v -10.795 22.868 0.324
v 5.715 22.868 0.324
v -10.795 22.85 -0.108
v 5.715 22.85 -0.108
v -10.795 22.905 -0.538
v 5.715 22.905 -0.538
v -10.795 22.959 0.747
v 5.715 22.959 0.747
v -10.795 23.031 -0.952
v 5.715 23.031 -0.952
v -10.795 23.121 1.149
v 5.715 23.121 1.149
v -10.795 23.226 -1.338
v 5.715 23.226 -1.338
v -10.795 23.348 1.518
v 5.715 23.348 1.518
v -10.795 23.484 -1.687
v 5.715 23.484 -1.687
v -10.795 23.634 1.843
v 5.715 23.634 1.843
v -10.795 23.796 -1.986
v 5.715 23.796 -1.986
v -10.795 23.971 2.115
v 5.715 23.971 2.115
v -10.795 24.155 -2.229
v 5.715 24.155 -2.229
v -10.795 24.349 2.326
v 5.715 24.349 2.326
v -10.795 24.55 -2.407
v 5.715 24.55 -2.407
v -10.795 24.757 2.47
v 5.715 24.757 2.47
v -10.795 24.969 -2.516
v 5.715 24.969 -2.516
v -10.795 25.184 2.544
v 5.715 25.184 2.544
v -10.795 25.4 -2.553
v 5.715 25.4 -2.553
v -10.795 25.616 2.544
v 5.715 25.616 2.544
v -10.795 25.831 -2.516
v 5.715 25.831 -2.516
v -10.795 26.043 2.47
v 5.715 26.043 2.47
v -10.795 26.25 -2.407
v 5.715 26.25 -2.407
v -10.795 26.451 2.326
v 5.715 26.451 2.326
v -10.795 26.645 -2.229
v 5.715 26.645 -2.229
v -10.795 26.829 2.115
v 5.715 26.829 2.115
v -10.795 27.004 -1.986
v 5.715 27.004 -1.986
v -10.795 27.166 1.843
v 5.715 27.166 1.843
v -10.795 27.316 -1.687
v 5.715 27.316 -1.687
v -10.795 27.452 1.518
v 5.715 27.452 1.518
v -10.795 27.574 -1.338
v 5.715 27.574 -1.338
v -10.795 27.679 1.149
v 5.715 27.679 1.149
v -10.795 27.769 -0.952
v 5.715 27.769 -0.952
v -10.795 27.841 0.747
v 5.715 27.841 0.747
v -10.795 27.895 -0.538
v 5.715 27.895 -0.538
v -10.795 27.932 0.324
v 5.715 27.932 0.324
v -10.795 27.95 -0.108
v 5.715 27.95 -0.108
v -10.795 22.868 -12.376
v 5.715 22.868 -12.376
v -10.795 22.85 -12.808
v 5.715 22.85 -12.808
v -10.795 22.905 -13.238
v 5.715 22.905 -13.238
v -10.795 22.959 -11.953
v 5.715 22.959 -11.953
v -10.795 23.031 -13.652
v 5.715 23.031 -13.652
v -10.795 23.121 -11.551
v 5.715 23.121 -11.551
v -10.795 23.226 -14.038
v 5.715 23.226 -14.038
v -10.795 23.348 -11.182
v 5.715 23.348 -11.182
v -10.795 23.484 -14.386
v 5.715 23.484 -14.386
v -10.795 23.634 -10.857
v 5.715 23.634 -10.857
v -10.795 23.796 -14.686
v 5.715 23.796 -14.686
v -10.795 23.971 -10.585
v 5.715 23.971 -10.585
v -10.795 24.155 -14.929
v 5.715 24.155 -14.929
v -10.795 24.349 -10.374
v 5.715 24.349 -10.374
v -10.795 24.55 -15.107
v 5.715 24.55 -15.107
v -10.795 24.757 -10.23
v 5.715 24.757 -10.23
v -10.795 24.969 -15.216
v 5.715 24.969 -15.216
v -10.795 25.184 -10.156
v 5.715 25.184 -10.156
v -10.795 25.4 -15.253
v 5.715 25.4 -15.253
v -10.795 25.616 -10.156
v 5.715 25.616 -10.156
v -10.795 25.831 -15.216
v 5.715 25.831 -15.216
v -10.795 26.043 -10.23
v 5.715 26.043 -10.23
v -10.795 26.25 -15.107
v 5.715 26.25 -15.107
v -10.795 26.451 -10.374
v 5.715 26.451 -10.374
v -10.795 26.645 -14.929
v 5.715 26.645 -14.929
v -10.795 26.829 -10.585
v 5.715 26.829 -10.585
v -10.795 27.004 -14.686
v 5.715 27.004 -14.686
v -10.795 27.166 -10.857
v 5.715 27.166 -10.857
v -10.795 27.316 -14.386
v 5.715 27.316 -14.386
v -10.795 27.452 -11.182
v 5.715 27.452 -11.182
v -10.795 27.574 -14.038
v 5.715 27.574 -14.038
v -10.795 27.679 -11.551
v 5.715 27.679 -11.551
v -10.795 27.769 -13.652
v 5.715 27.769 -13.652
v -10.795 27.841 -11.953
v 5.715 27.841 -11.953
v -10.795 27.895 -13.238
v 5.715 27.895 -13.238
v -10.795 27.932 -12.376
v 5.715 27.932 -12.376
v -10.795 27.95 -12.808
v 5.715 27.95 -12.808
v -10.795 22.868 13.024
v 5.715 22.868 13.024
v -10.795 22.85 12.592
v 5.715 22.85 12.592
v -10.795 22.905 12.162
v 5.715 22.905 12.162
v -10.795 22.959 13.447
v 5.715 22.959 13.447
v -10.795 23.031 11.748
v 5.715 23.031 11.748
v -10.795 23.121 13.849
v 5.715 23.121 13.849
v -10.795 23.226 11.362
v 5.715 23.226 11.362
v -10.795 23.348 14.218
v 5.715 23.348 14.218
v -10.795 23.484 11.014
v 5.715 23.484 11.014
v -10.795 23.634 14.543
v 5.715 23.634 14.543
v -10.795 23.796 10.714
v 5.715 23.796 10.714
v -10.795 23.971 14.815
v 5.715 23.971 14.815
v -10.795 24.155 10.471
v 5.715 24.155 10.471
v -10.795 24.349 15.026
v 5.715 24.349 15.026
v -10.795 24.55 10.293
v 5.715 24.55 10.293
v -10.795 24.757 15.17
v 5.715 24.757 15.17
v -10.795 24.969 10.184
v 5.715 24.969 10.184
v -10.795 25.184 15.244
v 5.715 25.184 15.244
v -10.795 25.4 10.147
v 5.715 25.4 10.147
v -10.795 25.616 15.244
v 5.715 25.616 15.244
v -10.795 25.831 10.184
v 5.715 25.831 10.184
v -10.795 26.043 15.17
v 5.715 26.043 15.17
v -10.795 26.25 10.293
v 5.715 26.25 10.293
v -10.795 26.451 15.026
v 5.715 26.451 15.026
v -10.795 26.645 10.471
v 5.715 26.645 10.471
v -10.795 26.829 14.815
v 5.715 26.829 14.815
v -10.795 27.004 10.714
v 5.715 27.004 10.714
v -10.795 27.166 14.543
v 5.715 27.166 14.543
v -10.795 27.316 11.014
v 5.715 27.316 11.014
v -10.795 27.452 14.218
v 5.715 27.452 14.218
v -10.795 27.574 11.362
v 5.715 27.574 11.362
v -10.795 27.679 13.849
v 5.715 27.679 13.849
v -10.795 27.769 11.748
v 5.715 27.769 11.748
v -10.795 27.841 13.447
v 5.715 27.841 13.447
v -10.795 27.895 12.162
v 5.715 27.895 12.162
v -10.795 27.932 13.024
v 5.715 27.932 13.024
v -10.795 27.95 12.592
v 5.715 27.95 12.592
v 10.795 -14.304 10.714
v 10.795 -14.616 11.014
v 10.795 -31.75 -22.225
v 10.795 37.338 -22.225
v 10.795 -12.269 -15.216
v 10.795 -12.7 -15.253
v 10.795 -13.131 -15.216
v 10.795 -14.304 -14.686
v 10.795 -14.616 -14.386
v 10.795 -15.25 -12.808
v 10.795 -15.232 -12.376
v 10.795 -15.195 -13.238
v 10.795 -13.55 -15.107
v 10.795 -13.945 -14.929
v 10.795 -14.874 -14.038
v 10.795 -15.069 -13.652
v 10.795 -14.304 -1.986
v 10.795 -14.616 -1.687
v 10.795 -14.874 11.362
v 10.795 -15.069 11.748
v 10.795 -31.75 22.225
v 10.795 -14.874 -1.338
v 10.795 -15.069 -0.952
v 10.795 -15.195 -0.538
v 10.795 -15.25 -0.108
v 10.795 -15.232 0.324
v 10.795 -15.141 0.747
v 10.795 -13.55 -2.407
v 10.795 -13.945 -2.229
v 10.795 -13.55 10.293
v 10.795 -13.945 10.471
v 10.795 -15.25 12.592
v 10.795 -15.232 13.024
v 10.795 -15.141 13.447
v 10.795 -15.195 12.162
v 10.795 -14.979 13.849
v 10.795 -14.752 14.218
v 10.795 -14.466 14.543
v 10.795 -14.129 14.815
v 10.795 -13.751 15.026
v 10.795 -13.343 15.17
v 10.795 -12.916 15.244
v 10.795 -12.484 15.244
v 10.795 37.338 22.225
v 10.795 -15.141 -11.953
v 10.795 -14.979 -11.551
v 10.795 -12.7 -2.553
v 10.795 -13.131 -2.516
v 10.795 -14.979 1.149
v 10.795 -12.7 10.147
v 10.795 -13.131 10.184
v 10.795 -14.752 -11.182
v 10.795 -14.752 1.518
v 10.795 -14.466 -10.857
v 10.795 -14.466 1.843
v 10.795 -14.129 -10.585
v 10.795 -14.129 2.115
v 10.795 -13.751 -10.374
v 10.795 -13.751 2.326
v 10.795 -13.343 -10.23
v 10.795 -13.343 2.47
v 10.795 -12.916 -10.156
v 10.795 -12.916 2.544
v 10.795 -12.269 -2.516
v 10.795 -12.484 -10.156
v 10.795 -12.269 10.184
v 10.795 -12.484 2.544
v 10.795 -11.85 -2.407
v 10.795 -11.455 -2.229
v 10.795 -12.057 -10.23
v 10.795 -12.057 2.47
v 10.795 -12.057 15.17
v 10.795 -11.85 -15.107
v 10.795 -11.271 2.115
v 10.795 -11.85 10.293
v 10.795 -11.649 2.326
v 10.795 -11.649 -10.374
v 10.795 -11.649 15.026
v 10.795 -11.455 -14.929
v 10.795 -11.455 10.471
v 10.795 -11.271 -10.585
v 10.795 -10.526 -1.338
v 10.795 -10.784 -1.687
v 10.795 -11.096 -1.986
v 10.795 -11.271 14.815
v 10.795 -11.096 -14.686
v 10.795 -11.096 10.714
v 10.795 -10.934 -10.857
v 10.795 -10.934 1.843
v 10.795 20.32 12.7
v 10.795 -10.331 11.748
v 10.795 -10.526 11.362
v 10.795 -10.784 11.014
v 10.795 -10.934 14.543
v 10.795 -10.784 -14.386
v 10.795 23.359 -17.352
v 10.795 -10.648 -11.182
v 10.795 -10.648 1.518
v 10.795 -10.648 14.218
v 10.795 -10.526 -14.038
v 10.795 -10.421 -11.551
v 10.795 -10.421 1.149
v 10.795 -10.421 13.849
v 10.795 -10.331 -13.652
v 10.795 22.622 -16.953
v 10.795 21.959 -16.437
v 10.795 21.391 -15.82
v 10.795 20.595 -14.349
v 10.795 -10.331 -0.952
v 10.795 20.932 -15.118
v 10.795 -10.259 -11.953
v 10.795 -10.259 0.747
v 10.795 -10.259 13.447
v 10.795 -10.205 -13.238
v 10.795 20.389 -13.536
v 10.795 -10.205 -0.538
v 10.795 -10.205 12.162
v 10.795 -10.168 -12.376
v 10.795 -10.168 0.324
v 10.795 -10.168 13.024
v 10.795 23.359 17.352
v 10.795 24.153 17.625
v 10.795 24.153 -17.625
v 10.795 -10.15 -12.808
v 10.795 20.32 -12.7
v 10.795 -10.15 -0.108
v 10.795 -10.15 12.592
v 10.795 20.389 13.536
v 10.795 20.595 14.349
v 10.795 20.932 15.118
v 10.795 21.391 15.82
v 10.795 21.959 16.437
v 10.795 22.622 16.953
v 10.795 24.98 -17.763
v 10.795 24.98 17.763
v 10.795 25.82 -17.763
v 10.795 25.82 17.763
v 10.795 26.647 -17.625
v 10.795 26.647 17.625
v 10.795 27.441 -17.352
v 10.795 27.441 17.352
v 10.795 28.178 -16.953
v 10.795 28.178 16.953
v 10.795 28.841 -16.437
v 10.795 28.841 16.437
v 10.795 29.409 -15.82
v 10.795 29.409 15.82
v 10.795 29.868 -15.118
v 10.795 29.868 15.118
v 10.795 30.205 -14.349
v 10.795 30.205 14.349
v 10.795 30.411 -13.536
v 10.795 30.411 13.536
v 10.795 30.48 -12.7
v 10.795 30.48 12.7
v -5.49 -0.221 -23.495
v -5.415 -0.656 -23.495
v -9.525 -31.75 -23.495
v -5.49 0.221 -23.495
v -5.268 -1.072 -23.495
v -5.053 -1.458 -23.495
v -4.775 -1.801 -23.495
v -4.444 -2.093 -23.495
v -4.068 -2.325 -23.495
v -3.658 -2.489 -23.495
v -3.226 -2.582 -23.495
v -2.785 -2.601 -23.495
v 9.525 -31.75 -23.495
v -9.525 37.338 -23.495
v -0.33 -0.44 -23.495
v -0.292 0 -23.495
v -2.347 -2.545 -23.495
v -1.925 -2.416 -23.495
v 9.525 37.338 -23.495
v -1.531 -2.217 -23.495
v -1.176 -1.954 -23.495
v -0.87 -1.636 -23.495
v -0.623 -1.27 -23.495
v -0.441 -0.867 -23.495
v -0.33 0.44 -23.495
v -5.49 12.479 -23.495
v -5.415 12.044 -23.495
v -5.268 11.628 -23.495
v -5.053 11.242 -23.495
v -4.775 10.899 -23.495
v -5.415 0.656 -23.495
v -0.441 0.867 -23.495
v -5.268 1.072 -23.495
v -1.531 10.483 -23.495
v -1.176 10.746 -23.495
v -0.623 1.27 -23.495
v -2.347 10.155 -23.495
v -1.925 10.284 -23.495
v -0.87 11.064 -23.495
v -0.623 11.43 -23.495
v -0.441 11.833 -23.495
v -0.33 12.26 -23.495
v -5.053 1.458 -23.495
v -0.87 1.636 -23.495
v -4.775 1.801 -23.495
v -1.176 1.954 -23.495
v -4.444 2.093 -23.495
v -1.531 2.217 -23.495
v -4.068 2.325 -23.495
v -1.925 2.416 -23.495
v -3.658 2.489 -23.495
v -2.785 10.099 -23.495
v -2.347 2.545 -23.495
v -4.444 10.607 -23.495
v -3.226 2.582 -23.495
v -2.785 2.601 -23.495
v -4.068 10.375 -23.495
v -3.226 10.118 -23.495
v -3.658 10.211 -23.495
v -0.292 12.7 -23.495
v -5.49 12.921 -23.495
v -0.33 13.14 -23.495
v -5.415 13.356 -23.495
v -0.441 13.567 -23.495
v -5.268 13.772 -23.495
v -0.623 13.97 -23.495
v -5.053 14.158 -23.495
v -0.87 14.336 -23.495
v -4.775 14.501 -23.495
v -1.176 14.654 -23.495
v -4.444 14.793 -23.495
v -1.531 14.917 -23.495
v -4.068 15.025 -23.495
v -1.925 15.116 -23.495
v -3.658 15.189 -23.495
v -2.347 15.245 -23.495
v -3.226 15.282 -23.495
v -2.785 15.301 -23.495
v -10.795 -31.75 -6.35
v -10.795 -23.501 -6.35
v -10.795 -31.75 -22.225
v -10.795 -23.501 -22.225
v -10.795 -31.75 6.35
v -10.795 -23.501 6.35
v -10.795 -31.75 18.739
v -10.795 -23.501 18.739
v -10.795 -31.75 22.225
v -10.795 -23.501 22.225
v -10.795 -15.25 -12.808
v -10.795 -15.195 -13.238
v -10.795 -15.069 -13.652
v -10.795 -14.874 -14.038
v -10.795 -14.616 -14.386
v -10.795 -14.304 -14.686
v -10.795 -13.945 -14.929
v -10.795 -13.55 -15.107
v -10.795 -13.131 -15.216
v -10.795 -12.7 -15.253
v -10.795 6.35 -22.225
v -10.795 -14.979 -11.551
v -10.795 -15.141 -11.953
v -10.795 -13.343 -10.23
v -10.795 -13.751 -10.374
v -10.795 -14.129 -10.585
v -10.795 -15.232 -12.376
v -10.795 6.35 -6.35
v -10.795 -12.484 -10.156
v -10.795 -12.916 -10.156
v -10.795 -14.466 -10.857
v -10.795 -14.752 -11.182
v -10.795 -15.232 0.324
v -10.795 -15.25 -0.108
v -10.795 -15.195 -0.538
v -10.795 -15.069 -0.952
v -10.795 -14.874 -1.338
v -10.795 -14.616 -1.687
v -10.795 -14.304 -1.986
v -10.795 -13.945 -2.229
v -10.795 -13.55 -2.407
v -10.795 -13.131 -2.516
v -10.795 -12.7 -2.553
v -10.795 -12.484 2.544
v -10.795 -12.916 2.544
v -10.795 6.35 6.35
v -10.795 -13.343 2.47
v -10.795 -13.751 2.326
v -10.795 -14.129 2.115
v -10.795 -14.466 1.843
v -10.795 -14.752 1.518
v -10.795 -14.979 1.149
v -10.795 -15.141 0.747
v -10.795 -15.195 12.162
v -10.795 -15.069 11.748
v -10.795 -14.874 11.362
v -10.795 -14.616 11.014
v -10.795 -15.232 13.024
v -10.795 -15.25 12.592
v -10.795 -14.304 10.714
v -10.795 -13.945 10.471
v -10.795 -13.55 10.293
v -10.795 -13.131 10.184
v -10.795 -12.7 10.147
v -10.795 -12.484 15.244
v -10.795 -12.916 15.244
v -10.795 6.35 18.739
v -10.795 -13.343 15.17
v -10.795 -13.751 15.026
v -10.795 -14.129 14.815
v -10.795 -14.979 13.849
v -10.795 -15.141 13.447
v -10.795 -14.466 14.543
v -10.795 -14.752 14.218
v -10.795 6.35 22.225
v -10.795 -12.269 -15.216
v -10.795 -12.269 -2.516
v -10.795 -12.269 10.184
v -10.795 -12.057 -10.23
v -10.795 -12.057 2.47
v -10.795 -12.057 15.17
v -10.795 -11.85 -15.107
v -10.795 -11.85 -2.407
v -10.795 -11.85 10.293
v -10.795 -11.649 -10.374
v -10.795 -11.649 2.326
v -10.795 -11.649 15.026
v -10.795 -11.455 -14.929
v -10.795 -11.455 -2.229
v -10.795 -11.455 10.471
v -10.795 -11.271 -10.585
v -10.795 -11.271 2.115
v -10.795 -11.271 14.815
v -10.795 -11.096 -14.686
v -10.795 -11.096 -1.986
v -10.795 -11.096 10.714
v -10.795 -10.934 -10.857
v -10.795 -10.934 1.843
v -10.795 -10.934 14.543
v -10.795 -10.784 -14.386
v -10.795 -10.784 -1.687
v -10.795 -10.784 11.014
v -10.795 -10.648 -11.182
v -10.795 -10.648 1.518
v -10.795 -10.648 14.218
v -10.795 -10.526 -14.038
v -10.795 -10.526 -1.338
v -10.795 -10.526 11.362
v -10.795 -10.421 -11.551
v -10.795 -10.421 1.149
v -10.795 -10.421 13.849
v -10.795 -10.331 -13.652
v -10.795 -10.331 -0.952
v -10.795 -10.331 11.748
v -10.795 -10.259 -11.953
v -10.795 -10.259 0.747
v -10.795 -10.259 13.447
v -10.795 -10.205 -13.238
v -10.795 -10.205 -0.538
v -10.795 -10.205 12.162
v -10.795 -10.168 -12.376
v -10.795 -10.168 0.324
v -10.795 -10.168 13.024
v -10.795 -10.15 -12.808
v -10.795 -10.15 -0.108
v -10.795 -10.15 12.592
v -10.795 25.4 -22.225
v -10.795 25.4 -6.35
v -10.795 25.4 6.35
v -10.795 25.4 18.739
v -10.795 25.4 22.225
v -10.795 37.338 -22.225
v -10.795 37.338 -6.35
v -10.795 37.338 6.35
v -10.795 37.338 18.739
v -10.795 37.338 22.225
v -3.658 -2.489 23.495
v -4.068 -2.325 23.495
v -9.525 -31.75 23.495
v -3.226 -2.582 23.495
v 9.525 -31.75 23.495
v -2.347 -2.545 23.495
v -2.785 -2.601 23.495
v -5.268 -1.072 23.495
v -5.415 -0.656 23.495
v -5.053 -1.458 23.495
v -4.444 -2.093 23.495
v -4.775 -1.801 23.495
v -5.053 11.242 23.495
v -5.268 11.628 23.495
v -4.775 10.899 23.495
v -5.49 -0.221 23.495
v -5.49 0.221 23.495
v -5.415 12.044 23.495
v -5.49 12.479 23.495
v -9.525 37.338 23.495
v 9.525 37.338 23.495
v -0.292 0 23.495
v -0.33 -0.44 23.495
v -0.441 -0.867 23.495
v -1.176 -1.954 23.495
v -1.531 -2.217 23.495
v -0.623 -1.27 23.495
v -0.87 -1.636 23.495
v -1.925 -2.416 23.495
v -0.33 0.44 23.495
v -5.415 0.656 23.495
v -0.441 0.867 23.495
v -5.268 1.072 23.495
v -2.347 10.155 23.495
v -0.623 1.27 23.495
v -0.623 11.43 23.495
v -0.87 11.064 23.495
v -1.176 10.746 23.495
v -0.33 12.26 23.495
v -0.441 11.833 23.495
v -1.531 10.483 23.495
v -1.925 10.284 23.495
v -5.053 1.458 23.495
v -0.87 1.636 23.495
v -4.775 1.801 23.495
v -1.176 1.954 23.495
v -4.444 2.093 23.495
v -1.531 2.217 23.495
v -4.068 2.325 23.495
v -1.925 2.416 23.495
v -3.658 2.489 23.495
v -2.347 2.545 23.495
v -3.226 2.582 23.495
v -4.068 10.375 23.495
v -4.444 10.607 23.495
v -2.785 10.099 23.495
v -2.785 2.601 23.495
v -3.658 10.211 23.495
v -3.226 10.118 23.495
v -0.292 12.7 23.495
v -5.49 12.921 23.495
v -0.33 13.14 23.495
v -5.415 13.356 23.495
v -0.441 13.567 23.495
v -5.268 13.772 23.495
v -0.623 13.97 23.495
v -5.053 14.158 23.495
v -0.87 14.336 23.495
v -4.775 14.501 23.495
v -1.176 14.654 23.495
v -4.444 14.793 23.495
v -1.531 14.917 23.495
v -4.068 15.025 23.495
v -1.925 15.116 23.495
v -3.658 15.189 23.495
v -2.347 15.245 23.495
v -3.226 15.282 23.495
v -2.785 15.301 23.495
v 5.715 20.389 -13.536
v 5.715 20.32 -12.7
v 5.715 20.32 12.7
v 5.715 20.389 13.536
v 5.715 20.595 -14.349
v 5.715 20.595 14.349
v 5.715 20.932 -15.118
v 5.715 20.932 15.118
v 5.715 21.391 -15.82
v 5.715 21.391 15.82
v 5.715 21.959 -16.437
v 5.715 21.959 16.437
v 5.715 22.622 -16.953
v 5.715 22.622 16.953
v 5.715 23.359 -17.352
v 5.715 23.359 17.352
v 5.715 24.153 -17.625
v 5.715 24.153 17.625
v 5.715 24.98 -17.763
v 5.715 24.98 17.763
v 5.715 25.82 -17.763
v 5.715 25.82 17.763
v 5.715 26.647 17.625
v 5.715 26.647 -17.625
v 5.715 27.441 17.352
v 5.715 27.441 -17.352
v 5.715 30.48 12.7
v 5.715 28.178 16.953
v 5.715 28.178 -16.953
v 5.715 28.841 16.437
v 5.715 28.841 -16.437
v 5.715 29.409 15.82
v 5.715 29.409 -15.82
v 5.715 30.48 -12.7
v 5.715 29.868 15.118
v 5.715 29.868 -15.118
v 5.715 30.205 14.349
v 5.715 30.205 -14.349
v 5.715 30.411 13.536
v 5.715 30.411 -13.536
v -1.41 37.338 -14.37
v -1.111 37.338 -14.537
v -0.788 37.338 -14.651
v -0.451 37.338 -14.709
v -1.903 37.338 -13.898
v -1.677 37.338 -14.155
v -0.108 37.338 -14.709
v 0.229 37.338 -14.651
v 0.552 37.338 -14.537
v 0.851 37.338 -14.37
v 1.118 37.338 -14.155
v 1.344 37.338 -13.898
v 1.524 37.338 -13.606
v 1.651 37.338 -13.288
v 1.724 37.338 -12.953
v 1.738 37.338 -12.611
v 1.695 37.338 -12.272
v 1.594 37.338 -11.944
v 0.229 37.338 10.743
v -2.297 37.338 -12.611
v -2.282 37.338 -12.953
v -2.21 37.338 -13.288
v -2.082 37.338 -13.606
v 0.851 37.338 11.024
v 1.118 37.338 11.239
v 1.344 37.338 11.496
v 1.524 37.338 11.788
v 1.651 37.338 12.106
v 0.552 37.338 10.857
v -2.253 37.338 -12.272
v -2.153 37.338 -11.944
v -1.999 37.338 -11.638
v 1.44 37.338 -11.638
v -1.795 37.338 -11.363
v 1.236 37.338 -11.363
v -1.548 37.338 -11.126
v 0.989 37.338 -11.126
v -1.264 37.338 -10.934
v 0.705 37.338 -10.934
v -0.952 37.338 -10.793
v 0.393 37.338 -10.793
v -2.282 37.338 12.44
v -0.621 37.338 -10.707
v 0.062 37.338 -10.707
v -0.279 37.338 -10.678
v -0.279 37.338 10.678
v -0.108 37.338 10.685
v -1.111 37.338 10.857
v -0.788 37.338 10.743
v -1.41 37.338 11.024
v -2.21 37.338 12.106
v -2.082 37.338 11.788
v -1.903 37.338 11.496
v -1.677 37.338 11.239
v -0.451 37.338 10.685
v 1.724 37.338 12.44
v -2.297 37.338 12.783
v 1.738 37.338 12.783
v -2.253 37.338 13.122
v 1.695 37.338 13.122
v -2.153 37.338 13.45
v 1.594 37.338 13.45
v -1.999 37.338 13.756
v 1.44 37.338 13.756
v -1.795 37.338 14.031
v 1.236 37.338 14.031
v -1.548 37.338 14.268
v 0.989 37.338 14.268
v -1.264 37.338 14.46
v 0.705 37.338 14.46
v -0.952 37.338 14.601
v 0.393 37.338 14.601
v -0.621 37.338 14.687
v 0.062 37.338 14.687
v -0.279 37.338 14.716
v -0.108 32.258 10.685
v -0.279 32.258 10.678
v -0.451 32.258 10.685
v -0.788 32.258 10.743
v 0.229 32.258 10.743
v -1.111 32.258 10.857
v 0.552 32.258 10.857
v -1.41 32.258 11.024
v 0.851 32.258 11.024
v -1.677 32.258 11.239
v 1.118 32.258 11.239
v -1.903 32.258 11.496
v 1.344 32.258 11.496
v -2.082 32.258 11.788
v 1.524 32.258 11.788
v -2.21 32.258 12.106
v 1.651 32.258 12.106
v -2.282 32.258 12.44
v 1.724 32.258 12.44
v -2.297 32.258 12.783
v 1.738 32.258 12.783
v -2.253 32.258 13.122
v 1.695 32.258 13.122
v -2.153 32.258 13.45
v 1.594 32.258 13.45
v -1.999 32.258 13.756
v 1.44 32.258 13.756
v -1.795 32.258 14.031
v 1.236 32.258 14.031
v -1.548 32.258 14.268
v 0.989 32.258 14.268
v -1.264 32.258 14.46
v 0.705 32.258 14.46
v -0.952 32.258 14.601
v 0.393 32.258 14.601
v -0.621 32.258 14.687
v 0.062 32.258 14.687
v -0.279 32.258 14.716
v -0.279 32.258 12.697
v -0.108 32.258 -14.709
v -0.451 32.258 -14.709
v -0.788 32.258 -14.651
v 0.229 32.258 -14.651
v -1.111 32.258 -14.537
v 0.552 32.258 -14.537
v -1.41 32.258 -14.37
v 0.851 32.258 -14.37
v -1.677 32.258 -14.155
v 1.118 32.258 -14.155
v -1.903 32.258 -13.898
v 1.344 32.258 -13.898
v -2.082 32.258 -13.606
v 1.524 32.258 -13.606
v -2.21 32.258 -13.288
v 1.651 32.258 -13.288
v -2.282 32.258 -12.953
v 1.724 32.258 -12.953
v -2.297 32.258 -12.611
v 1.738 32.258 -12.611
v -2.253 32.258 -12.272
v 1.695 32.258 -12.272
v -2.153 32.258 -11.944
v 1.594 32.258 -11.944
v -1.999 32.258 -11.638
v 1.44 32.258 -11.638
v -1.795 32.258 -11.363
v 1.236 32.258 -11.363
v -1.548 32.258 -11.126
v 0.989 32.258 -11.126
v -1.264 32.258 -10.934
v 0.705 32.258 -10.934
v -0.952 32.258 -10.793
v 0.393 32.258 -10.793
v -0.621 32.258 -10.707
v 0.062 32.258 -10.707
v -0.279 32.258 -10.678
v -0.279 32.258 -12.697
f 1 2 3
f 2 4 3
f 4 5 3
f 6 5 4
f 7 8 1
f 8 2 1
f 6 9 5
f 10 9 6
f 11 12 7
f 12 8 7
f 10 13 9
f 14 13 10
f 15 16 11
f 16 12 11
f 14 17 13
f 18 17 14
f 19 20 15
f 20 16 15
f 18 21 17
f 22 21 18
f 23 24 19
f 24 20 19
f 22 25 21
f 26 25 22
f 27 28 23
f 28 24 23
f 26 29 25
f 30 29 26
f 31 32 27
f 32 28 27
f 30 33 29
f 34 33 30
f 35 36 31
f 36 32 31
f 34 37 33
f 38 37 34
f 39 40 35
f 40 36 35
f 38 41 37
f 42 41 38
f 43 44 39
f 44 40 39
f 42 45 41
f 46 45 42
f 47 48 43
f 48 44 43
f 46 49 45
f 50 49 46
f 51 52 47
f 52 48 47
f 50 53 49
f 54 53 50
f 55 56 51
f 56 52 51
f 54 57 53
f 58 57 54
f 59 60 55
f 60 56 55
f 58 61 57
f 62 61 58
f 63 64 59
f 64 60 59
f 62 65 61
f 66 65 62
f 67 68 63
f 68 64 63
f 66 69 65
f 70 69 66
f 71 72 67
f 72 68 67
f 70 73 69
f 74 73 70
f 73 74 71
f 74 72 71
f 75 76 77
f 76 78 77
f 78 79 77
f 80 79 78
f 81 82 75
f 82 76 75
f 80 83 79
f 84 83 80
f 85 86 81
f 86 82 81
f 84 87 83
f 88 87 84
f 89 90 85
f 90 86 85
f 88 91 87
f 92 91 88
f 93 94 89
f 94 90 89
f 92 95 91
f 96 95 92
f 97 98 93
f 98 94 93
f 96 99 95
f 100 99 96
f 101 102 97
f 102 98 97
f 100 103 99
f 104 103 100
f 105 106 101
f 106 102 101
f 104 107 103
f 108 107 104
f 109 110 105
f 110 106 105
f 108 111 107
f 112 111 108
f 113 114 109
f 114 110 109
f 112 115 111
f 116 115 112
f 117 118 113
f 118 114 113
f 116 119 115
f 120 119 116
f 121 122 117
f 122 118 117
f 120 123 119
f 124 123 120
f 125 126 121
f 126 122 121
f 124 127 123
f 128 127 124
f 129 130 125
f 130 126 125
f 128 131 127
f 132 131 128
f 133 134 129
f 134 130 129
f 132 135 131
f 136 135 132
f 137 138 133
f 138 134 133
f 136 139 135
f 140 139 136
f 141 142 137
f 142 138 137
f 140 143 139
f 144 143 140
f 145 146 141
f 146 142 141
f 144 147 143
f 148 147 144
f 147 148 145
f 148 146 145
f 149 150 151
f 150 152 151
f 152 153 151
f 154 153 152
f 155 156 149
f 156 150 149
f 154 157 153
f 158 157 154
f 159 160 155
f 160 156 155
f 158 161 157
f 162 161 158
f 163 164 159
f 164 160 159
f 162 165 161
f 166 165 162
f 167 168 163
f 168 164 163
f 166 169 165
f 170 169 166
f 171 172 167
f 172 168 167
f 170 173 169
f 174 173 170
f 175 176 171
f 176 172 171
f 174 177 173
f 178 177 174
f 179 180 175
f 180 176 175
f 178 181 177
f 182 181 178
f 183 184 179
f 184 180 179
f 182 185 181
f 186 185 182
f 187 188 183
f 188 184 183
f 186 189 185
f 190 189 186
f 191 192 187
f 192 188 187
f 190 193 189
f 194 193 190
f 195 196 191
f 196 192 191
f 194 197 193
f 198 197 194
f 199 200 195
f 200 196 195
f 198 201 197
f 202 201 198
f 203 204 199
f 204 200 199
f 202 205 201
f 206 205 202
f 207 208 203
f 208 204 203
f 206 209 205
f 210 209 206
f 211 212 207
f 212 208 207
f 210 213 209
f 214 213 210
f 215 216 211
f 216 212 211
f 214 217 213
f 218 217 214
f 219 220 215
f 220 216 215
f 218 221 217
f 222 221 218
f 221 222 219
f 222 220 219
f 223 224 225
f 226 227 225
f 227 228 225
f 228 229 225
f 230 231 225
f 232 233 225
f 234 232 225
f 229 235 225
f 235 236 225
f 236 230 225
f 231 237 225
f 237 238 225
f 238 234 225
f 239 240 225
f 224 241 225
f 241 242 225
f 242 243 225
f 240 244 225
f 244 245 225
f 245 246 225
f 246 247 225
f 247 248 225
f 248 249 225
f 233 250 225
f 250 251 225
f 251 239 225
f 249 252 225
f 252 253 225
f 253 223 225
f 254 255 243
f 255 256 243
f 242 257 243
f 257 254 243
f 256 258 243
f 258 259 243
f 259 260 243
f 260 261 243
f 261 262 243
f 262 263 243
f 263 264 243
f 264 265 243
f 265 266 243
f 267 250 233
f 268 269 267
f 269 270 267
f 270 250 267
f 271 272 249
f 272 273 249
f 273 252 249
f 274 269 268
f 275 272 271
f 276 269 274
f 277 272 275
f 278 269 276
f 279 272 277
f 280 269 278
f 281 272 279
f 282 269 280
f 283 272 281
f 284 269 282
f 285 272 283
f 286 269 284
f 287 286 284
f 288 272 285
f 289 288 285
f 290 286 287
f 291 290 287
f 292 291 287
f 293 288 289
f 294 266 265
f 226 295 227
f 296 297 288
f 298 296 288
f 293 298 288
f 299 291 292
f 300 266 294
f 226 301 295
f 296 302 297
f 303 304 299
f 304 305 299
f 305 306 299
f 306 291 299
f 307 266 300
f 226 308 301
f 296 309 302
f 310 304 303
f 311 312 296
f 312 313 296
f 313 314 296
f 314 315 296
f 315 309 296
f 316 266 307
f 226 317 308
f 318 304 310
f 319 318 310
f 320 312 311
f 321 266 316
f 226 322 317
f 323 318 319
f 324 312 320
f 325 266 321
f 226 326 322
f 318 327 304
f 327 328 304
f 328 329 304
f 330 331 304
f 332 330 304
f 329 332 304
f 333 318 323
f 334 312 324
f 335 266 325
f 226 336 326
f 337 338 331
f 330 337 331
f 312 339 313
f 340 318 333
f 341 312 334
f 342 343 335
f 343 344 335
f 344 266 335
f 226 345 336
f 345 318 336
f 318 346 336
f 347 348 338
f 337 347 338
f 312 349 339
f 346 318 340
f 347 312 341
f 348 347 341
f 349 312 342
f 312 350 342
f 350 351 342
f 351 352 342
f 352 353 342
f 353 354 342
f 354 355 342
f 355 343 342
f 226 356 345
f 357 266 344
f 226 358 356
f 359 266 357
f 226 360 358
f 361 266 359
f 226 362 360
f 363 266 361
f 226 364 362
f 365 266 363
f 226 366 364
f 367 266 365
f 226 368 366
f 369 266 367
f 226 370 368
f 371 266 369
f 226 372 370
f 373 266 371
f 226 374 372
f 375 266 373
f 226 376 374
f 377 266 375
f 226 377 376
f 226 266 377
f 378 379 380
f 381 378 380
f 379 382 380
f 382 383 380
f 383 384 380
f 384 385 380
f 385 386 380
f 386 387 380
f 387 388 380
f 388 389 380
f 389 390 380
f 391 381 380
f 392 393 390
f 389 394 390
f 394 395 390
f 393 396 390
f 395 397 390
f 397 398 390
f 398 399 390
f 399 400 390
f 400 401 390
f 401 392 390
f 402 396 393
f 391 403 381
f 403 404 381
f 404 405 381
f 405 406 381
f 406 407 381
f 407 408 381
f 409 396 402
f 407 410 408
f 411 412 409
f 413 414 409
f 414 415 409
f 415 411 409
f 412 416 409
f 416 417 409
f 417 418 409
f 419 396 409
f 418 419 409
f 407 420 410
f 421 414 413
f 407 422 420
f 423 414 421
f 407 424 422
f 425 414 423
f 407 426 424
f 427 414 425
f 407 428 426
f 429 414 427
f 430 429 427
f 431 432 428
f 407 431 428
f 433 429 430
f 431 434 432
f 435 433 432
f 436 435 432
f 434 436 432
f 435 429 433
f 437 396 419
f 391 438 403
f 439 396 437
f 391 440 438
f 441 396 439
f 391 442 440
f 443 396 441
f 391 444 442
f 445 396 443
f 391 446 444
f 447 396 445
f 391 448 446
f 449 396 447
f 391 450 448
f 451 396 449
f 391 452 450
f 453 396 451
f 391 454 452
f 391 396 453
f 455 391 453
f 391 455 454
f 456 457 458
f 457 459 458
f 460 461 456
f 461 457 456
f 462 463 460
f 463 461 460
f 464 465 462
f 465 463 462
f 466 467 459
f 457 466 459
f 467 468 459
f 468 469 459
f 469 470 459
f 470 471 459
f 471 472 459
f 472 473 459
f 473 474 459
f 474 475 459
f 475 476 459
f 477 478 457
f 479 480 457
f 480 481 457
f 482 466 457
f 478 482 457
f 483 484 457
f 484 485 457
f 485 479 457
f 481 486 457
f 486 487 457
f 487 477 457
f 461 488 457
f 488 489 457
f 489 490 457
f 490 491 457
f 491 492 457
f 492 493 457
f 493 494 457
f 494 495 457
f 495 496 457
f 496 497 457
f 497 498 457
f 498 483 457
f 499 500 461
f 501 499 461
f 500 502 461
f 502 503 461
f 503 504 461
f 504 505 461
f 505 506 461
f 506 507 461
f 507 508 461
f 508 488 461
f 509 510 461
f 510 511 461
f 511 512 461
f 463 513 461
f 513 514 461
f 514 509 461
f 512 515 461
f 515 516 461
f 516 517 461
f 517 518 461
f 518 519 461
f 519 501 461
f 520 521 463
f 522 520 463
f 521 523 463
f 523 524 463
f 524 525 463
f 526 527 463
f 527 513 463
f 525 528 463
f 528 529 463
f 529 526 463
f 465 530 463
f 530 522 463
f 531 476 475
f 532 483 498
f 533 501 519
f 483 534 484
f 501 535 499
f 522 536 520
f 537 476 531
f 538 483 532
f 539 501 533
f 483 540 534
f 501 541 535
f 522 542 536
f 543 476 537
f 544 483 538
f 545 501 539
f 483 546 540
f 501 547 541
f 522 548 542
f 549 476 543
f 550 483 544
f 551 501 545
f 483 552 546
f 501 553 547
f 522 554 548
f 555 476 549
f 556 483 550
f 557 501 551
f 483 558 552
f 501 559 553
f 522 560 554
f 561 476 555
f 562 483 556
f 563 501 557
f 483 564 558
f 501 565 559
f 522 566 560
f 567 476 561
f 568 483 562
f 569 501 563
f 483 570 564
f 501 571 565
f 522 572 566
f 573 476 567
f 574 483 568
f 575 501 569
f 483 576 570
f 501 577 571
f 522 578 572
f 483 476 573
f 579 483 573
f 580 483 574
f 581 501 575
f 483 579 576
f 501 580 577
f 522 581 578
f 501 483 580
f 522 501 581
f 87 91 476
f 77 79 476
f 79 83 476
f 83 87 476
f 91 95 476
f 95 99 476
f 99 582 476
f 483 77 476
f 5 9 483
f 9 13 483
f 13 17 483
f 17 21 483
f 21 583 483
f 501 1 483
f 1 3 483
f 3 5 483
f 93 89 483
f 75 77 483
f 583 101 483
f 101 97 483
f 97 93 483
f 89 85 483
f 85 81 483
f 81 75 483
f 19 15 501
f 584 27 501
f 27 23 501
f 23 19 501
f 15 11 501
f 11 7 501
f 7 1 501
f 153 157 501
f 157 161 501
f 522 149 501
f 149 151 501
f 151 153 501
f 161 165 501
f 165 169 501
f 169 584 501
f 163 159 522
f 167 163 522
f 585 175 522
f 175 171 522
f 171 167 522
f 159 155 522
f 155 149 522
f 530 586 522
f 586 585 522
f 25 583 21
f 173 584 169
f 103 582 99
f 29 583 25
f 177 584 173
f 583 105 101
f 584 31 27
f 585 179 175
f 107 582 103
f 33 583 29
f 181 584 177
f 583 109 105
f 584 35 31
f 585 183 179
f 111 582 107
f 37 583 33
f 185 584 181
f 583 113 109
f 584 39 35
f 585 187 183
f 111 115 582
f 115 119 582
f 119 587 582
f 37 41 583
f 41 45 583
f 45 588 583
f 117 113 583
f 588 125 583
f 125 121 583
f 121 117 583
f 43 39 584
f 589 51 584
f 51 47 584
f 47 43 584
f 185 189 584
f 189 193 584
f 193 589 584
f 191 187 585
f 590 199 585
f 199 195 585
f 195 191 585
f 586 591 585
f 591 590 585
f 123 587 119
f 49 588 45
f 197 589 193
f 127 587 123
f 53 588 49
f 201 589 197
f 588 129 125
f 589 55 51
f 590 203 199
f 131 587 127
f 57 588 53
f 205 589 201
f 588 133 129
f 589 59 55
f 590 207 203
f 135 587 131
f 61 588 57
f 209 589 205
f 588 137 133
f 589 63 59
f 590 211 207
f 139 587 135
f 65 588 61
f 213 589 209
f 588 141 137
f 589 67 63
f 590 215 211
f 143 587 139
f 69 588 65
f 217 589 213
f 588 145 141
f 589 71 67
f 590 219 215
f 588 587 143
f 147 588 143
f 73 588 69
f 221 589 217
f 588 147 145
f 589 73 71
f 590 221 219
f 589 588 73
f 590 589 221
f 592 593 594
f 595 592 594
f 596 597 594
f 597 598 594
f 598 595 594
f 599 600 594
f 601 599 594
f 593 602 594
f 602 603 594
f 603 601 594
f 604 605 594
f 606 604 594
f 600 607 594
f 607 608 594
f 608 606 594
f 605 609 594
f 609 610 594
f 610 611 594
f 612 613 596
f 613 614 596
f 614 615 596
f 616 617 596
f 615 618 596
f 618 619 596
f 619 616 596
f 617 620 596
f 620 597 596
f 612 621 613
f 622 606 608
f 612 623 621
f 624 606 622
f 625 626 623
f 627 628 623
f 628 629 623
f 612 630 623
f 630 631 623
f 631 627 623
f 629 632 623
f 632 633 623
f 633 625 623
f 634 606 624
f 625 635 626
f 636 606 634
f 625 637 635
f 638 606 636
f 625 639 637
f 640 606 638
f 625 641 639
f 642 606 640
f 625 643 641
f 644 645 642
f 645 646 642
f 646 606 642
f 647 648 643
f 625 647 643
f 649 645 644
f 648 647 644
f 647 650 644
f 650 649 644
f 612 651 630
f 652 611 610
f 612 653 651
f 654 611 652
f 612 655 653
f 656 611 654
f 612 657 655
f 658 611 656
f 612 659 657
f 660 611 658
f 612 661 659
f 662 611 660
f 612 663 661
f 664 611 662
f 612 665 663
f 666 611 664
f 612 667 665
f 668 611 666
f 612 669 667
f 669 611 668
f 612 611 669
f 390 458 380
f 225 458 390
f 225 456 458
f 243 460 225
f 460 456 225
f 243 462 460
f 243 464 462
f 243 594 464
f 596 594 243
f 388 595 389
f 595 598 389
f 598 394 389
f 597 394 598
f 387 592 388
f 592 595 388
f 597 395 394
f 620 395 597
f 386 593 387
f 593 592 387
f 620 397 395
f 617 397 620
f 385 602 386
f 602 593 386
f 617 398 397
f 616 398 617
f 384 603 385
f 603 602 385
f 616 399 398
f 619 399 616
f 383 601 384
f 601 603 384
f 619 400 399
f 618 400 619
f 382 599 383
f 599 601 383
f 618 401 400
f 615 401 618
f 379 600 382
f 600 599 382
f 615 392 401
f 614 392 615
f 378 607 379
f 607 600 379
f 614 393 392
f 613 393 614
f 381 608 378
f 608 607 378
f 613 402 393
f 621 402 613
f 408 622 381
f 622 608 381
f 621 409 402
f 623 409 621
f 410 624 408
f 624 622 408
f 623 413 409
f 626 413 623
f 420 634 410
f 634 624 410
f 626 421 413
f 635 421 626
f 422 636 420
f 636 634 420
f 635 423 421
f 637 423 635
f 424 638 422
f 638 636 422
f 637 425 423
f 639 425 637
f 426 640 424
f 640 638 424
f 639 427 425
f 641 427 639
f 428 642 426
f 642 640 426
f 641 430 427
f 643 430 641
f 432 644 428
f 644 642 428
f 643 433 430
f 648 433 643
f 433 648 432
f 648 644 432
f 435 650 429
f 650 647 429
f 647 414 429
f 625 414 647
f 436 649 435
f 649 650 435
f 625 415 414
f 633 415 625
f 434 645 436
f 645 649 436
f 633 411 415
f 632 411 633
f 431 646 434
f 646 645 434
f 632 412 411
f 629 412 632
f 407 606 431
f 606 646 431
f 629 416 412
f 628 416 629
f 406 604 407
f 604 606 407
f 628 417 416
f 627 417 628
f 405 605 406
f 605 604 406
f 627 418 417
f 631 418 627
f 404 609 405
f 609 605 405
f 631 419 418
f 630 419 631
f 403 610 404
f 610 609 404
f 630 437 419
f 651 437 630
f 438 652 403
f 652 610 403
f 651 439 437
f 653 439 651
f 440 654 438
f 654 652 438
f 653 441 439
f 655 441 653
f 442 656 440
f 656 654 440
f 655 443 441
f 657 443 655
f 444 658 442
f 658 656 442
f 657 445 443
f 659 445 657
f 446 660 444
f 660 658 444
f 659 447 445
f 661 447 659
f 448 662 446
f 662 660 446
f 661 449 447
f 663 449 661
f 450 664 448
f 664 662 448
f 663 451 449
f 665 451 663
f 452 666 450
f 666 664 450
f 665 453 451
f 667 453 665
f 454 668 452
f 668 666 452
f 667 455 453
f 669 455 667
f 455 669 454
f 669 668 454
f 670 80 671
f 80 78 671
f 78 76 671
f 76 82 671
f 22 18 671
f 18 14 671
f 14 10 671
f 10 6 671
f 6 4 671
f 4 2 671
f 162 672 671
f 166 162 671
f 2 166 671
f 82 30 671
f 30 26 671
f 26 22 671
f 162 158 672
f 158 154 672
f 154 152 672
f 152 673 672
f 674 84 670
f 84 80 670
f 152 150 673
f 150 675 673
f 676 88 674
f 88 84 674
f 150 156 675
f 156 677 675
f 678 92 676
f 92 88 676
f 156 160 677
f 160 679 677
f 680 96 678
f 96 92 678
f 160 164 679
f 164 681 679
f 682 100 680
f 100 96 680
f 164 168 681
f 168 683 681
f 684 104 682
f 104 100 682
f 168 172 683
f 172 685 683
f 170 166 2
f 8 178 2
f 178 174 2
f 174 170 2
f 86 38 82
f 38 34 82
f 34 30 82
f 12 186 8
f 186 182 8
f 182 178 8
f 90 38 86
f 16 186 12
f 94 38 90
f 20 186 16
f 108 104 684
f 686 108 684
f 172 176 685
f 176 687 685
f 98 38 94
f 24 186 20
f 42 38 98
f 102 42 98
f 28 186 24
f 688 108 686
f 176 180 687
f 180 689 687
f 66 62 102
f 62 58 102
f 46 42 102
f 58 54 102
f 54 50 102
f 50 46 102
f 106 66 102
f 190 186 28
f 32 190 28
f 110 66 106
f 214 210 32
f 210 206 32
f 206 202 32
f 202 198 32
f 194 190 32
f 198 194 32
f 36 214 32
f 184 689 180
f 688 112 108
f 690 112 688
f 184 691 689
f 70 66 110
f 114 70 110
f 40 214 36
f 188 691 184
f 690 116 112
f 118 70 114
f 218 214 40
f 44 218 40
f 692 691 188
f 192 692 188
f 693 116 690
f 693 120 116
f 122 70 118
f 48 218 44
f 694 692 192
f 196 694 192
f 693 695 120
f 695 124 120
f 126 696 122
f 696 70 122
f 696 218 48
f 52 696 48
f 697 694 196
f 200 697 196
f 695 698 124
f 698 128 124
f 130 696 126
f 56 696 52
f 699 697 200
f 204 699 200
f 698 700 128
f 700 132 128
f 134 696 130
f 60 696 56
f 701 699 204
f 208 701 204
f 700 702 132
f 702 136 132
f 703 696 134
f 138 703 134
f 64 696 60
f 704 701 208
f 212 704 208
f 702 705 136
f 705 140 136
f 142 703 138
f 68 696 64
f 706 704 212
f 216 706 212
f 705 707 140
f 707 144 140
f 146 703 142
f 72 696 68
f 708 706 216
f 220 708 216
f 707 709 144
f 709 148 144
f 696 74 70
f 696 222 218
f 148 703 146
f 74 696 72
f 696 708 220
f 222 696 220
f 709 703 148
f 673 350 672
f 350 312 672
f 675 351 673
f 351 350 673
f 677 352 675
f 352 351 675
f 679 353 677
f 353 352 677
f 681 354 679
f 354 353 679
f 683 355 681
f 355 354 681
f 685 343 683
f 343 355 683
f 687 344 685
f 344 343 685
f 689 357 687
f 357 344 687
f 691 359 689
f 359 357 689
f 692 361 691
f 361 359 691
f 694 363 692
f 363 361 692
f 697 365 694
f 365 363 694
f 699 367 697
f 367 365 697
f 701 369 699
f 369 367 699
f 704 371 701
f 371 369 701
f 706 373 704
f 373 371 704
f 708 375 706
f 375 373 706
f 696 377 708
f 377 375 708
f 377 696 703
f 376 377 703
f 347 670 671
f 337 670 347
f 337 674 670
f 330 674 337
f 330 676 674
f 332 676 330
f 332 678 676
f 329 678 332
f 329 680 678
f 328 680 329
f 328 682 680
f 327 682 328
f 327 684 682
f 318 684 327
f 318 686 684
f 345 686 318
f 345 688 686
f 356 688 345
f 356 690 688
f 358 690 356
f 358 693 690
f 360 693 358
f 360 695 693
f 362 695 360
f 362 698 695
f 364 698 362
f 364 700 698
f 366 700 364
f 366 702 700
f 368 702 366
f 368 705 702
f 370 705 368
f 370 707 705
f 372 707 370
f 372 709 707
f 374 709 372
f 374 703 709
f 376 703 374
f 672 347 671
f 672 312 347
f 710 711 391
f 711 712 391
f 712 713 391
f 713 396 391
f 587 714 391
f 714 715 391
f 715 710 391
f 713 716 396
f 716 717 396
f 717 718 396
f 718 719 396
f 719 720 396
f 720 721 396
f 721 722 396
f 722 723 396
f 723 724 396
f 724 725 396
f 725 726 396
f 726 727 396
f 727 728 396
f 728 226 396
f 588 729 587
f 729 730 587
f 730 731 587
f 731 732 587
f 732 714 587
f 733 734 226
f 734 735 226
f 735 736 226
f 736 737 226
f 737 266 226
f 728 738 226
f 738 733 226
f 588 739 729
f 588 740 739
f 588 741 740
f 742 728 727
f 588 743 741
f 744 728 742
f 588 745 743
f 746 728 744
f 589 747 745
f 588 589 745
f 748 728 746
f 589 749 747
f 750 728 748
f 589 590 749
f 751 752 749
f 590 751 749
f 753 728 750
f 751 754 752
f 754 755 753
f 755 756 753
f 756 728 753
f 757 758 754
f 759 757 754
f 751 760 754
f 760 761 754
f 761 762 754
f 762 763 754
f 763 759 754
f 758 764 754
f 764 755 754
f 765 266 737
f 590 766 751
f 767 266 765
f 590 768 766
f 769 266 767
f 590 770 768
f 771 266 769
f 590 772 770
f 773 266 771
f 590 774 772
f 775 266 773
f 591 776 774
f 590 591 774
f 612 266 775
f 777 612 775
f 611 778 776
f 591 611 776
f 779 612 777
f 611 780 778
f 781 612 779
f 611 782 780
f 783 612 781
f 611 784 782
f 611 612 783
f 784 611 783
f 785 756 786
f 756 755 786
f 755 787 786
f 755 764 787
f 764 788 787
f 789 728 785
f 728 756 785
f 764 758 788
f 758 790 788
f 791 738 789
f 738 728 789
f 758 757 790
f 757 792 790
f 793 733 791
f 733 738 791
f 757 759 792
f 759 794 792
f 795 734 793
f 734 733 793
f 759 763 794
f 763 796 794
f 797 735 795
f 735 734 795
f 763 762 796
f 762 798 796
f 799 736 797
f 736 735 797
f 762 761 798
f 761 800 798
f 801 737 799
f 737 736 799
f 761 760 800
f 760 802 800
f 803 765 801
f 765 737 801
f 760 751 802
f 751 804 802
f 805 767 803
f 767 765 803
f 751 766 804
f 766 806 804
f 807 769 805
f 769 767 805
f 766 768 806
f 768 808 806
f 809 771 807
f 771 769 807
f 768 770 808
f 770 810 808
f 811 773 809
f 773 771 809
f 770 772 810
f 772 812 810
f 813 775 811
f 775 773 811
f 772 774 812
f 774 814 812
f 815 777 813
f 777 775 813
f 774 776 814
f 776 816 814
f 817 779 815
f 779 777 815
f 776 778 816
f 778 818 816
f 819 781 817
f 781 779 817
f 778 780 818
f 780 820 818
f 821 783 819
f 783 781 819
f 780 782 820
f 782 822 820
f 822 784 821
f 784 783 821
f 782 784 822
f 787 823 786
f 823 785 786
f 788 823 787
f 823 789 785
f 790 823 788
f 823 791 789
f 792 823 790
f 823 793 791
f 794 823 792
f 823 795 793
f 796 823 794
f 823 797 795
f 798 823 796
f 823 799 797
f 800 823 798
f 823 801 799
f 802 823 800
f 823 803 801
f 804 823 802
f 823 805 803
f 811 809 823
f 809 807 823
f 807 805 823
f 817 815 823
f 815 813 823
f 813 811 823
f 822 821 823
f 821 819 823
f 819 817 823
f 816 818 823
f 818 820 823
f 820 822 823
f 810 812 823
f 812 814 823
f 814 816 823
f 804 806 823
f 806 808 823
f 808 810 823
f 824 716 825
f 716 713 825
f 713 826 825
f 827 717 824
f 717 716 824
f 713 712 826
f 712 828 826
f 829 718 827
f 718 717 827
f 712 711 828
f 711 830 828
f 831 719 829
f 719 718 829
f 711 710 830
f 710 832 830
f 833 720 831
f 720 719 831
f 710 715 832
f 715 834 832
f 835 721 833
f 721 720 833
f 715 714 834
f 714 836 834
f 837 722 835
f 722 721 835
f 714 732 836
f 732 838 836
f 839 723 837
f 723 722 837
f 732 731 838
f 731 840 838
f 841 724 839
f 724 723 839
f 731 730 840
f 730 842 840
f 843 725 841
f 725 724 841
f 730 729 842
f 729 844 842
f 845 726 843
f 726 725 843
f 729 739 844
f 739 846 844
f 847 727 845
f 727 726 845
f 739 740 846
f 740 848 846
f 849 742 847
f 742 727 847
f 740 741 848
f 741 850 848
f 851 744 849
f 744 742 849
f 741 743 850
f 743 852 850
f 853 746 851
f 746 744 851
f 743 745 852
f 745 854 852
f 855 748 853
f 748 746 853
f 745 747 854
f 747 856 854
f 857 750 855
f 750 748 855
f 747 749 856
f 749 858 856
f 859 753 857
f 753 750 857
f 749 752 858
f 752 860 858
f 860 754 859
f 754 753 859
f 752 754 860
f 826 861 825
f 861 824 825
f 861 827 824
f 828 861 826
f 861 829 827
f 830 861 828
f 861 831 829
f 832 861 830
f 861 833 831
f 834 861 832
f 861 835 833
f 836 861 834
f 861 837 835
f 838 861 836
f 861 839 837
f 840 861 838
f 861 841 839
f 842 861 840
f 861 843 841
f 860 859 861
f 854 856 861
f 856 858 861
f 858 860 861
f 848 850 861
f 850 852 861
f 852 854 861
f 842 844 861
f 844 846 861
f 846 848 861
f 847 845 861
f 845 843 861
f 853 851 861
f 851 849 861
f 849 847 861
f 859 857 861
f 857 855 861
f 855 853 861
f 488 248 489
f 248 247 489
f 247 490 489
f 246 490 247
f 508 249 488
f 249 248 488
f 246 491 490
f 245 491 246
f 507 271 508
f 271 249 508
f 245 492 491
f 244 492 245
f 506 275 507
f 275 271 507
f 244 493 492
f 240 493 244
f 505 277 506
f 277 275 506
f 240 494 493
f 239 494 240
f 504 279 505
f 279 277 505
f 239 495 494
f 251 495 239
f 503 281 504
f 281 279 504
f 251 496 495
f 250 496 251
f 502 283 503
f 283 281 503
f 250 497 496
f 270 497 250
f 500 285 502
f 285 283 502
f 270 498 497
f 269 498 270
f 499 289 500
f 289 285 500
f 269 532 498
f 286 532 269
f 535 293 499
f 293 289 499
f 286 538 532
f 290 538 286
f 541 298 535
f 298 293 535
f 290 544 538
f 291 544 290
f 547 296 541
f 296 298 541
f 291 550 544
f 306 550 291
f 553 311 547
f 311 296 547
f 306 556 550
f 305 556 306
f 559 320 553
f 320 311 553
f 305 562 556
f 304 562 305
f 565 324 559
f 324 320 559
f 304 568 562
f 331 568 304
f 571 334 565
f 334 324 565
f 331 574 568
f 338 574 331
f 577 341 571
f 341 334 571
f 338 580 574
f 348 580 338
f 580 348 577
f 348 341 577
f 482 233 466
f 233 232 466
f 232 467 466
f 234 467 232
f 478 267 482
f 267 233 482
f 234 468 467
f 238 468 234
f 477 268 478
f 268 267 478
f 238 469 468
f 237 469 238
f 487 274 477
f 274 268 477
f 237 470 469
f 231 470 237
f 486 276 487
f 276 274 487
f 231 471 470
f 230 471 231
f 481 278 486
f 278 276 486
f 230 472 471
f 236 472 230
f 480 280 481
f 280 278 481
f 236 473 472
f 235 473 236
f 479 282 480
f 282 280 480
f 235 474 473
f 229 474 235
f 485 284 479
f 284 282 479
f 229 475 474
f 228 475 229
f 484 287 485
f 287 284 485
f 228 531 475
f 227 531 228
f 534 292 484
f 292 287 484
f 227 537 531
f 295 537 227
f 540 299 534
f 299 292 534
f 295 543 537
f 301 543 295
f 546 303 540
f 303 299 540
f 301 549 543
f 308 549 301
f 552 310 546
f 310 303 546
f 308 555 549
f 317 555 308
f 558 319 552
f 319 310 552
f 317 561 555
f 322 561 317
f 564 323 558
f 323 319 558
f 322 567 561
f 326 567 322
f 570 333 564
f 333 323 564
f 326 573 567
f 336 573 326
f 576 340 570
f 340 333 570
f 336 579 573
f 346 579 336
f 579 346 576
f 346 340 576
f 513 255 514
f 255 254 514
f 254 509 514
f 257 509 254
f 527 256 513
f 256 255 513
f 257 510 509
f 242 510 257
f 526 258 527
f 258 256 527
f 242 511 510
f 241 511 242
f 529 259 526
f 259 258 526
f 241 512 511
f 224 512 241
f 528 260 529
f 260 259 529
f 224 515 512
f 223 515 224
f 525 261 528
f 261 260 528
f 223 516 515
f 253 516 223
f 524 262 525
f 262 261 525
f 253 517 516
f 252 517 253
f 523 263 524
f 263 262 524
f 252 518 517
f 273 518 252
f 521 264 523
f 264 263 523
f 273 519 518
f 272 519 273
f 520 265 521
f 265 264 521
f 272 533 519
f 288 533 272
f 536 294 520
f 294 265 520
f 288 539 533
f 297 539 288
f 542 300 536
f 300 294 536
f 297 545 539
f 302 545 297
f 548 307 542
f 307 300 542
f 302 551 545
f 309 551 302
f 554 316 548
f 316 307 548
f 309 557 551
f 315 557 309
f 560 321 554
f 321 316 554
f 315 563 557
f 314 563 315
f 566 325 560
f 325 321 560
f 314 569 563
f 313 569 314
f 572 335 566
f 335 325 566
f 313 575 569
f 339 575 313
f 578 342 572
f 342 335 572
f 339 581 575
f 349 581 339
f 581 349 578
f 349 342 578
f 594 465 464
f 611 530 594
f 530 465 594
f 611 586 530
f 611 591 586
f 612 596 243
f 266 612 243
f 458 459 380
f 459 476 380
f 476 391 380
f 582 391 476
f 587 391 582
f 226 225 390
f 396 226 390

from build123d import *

# Parameters (mm, degrees)
SKETCH1_W           = 21.59
SKETCH1_H           = 46.99
BOSS_EXTRUDE1_DEPTH = 31.75
SKETCH2_R           = 2.6035
CUT_EXTRUDE1_DEPTH  = 47.99
SKETCH4_R           = 2.5527
CUT_EXTRUDE3_DEPTH  = 22.59
CUT_EXTRUDE5_DEPTH  = 5.08
SKETCH8_W           = 21.59
SKETCH8_H           = 46.99
BOSS_EXTRUDE2_DEPTH = 5.588
SKETCH9_R           = 2.0193
CUT_EXTRUDE6_DEPTH  = 5.08
SKETCH10_R          = 2.5527
CUT_EXTRUDE7_DEPTH  = 22.59
CHAMFER1_SIZE       = 1.27


with BuildPart() as part:
    # Sketch1 → Boss-Extrude1 (new body, symmetric)
    with BuildSketch(Plane(origin=(0, 0, 0), x_dir=(1, 0, 0), z_dir=(0, 1, 0))):
        Rectangle(SKETCH1_W, SKETCH1_H)
    extrude(amount=BOSS_EXTRUDE1_DEPTH, both=True)

    # Sketch2 → Cut-Extrude1 (cut, through all)
    with BuildSketch(Plane.XY.offset(23.495)):
        with Locations((-2.8956, 12.7)):
            Circle(SKETCH2_R)
        with Locations((-2.8956, 0)):
            Circle(SKETCH2_R)
    extrude(amount=-CUT_EXTRUDE1_DEPTH, mode=Mode.SUBTRACT)

    # Sketch4 → Cut-Extrude3 (cut, through all)
    with BuildSketch(Plane(origin=(10.795, 0, 0), x_dir=(0, 0, -1), z_dir=(1, 0, 0))):
        with Locations((-12.7, 25.4)):
            Circle(SKETCH4_R)
        with Locations((12.7, 25.4)):
            Circle(SKETCH4_R)
        with Locations((0, 25.4)):
            Circle(SKETCH4_R)
    extrude(amount=-CUT_EXTRUDE3_DEPTH, mode=Mode.SUBTRACT)

    # Sketch7 → Cut-Extrude5 (cut)
    with BuildSketch(Plane(origin=(10.795, 0, 0), x_dir=(0, 0, -1), z_dir=(1, 0, 0))):
        with BuildLine():
            Line((-12.7, 30.48), (12.7, 30.48))
            ThreePointArc((12.7, 30.48), (17.78, 25.4), (12.7, 20.32))
            Line((12.7, 20.32), (-12.7, 20.32))
            ThreePointArc((-12.7, 20.32), (-17.78, 25.4), (-12.7, 30.48))
        make_face()
    extrude(amount=-CUT_EXTRUDE5_DEPTH, mode=Mode.SUBTRACT)

    # Sketch8 → Boss-Extrude2 (add)
    with BuildSketch(Plane(origin=(0, 31.75, 0), x_dir=(1, 0, 0), z_dir=(0, 1, 0))):
        Rectangle(SKETCH8_W, SKETCH8_H)
    extrude(amount=BOSS_EXTRUDE2_DEPTH)

    # Sketch9 → Cut-Extrude6 (cut)
    with BuildSketch(Plane(origin=(0, 37.338, 0), x_dir=(1, 0, 0), z_dir=(0, 1, 0))):
        with Locations((-0.2794, 12.696926228)):
            Circle(SKETCH9_R)
        with Locations((-0.2794, -12.696926228)):
            Circle(SKETCH9_R)
    extrude(amount=-CUT_EXTRUDE6_DEPTH, mode=Mode.SUBTRACT)

    # Sketch10 → Cut-Extrude7 (cut, through all)
    with BuildSketch(Plane(origin=(10.795, 0, 0), x_dir=(0, 0, -1), z_dir=(1, 0, 0))):
        with Locations((0, -12.7)):
            Circle(SKETCH10_R)
        with Locations((12.7, -12.7)):
            Circle(SKETCH10_R)
        with Locations((-12.7, -12.7)):
            Circle(SKETCH10_R)
    extrude(amount=-CUT_EXTRUDE7_DEPTH, mode=Mode.SUBTRACT)

    # Chamfer1
    chamfer1_edges = [part.edges().sort_by_distance(p)[0] for p in [
        (10.795, 2.794, 23.495),
        (-10.795, 2.794, 23.495),
        (-10.795, 2.794, -23.495),
        (10.795, 2.794, -23.495),
    ]]
    chamfer(chamfer1_edges, length=CHAMFER1_SIZE)


solid = part.part
